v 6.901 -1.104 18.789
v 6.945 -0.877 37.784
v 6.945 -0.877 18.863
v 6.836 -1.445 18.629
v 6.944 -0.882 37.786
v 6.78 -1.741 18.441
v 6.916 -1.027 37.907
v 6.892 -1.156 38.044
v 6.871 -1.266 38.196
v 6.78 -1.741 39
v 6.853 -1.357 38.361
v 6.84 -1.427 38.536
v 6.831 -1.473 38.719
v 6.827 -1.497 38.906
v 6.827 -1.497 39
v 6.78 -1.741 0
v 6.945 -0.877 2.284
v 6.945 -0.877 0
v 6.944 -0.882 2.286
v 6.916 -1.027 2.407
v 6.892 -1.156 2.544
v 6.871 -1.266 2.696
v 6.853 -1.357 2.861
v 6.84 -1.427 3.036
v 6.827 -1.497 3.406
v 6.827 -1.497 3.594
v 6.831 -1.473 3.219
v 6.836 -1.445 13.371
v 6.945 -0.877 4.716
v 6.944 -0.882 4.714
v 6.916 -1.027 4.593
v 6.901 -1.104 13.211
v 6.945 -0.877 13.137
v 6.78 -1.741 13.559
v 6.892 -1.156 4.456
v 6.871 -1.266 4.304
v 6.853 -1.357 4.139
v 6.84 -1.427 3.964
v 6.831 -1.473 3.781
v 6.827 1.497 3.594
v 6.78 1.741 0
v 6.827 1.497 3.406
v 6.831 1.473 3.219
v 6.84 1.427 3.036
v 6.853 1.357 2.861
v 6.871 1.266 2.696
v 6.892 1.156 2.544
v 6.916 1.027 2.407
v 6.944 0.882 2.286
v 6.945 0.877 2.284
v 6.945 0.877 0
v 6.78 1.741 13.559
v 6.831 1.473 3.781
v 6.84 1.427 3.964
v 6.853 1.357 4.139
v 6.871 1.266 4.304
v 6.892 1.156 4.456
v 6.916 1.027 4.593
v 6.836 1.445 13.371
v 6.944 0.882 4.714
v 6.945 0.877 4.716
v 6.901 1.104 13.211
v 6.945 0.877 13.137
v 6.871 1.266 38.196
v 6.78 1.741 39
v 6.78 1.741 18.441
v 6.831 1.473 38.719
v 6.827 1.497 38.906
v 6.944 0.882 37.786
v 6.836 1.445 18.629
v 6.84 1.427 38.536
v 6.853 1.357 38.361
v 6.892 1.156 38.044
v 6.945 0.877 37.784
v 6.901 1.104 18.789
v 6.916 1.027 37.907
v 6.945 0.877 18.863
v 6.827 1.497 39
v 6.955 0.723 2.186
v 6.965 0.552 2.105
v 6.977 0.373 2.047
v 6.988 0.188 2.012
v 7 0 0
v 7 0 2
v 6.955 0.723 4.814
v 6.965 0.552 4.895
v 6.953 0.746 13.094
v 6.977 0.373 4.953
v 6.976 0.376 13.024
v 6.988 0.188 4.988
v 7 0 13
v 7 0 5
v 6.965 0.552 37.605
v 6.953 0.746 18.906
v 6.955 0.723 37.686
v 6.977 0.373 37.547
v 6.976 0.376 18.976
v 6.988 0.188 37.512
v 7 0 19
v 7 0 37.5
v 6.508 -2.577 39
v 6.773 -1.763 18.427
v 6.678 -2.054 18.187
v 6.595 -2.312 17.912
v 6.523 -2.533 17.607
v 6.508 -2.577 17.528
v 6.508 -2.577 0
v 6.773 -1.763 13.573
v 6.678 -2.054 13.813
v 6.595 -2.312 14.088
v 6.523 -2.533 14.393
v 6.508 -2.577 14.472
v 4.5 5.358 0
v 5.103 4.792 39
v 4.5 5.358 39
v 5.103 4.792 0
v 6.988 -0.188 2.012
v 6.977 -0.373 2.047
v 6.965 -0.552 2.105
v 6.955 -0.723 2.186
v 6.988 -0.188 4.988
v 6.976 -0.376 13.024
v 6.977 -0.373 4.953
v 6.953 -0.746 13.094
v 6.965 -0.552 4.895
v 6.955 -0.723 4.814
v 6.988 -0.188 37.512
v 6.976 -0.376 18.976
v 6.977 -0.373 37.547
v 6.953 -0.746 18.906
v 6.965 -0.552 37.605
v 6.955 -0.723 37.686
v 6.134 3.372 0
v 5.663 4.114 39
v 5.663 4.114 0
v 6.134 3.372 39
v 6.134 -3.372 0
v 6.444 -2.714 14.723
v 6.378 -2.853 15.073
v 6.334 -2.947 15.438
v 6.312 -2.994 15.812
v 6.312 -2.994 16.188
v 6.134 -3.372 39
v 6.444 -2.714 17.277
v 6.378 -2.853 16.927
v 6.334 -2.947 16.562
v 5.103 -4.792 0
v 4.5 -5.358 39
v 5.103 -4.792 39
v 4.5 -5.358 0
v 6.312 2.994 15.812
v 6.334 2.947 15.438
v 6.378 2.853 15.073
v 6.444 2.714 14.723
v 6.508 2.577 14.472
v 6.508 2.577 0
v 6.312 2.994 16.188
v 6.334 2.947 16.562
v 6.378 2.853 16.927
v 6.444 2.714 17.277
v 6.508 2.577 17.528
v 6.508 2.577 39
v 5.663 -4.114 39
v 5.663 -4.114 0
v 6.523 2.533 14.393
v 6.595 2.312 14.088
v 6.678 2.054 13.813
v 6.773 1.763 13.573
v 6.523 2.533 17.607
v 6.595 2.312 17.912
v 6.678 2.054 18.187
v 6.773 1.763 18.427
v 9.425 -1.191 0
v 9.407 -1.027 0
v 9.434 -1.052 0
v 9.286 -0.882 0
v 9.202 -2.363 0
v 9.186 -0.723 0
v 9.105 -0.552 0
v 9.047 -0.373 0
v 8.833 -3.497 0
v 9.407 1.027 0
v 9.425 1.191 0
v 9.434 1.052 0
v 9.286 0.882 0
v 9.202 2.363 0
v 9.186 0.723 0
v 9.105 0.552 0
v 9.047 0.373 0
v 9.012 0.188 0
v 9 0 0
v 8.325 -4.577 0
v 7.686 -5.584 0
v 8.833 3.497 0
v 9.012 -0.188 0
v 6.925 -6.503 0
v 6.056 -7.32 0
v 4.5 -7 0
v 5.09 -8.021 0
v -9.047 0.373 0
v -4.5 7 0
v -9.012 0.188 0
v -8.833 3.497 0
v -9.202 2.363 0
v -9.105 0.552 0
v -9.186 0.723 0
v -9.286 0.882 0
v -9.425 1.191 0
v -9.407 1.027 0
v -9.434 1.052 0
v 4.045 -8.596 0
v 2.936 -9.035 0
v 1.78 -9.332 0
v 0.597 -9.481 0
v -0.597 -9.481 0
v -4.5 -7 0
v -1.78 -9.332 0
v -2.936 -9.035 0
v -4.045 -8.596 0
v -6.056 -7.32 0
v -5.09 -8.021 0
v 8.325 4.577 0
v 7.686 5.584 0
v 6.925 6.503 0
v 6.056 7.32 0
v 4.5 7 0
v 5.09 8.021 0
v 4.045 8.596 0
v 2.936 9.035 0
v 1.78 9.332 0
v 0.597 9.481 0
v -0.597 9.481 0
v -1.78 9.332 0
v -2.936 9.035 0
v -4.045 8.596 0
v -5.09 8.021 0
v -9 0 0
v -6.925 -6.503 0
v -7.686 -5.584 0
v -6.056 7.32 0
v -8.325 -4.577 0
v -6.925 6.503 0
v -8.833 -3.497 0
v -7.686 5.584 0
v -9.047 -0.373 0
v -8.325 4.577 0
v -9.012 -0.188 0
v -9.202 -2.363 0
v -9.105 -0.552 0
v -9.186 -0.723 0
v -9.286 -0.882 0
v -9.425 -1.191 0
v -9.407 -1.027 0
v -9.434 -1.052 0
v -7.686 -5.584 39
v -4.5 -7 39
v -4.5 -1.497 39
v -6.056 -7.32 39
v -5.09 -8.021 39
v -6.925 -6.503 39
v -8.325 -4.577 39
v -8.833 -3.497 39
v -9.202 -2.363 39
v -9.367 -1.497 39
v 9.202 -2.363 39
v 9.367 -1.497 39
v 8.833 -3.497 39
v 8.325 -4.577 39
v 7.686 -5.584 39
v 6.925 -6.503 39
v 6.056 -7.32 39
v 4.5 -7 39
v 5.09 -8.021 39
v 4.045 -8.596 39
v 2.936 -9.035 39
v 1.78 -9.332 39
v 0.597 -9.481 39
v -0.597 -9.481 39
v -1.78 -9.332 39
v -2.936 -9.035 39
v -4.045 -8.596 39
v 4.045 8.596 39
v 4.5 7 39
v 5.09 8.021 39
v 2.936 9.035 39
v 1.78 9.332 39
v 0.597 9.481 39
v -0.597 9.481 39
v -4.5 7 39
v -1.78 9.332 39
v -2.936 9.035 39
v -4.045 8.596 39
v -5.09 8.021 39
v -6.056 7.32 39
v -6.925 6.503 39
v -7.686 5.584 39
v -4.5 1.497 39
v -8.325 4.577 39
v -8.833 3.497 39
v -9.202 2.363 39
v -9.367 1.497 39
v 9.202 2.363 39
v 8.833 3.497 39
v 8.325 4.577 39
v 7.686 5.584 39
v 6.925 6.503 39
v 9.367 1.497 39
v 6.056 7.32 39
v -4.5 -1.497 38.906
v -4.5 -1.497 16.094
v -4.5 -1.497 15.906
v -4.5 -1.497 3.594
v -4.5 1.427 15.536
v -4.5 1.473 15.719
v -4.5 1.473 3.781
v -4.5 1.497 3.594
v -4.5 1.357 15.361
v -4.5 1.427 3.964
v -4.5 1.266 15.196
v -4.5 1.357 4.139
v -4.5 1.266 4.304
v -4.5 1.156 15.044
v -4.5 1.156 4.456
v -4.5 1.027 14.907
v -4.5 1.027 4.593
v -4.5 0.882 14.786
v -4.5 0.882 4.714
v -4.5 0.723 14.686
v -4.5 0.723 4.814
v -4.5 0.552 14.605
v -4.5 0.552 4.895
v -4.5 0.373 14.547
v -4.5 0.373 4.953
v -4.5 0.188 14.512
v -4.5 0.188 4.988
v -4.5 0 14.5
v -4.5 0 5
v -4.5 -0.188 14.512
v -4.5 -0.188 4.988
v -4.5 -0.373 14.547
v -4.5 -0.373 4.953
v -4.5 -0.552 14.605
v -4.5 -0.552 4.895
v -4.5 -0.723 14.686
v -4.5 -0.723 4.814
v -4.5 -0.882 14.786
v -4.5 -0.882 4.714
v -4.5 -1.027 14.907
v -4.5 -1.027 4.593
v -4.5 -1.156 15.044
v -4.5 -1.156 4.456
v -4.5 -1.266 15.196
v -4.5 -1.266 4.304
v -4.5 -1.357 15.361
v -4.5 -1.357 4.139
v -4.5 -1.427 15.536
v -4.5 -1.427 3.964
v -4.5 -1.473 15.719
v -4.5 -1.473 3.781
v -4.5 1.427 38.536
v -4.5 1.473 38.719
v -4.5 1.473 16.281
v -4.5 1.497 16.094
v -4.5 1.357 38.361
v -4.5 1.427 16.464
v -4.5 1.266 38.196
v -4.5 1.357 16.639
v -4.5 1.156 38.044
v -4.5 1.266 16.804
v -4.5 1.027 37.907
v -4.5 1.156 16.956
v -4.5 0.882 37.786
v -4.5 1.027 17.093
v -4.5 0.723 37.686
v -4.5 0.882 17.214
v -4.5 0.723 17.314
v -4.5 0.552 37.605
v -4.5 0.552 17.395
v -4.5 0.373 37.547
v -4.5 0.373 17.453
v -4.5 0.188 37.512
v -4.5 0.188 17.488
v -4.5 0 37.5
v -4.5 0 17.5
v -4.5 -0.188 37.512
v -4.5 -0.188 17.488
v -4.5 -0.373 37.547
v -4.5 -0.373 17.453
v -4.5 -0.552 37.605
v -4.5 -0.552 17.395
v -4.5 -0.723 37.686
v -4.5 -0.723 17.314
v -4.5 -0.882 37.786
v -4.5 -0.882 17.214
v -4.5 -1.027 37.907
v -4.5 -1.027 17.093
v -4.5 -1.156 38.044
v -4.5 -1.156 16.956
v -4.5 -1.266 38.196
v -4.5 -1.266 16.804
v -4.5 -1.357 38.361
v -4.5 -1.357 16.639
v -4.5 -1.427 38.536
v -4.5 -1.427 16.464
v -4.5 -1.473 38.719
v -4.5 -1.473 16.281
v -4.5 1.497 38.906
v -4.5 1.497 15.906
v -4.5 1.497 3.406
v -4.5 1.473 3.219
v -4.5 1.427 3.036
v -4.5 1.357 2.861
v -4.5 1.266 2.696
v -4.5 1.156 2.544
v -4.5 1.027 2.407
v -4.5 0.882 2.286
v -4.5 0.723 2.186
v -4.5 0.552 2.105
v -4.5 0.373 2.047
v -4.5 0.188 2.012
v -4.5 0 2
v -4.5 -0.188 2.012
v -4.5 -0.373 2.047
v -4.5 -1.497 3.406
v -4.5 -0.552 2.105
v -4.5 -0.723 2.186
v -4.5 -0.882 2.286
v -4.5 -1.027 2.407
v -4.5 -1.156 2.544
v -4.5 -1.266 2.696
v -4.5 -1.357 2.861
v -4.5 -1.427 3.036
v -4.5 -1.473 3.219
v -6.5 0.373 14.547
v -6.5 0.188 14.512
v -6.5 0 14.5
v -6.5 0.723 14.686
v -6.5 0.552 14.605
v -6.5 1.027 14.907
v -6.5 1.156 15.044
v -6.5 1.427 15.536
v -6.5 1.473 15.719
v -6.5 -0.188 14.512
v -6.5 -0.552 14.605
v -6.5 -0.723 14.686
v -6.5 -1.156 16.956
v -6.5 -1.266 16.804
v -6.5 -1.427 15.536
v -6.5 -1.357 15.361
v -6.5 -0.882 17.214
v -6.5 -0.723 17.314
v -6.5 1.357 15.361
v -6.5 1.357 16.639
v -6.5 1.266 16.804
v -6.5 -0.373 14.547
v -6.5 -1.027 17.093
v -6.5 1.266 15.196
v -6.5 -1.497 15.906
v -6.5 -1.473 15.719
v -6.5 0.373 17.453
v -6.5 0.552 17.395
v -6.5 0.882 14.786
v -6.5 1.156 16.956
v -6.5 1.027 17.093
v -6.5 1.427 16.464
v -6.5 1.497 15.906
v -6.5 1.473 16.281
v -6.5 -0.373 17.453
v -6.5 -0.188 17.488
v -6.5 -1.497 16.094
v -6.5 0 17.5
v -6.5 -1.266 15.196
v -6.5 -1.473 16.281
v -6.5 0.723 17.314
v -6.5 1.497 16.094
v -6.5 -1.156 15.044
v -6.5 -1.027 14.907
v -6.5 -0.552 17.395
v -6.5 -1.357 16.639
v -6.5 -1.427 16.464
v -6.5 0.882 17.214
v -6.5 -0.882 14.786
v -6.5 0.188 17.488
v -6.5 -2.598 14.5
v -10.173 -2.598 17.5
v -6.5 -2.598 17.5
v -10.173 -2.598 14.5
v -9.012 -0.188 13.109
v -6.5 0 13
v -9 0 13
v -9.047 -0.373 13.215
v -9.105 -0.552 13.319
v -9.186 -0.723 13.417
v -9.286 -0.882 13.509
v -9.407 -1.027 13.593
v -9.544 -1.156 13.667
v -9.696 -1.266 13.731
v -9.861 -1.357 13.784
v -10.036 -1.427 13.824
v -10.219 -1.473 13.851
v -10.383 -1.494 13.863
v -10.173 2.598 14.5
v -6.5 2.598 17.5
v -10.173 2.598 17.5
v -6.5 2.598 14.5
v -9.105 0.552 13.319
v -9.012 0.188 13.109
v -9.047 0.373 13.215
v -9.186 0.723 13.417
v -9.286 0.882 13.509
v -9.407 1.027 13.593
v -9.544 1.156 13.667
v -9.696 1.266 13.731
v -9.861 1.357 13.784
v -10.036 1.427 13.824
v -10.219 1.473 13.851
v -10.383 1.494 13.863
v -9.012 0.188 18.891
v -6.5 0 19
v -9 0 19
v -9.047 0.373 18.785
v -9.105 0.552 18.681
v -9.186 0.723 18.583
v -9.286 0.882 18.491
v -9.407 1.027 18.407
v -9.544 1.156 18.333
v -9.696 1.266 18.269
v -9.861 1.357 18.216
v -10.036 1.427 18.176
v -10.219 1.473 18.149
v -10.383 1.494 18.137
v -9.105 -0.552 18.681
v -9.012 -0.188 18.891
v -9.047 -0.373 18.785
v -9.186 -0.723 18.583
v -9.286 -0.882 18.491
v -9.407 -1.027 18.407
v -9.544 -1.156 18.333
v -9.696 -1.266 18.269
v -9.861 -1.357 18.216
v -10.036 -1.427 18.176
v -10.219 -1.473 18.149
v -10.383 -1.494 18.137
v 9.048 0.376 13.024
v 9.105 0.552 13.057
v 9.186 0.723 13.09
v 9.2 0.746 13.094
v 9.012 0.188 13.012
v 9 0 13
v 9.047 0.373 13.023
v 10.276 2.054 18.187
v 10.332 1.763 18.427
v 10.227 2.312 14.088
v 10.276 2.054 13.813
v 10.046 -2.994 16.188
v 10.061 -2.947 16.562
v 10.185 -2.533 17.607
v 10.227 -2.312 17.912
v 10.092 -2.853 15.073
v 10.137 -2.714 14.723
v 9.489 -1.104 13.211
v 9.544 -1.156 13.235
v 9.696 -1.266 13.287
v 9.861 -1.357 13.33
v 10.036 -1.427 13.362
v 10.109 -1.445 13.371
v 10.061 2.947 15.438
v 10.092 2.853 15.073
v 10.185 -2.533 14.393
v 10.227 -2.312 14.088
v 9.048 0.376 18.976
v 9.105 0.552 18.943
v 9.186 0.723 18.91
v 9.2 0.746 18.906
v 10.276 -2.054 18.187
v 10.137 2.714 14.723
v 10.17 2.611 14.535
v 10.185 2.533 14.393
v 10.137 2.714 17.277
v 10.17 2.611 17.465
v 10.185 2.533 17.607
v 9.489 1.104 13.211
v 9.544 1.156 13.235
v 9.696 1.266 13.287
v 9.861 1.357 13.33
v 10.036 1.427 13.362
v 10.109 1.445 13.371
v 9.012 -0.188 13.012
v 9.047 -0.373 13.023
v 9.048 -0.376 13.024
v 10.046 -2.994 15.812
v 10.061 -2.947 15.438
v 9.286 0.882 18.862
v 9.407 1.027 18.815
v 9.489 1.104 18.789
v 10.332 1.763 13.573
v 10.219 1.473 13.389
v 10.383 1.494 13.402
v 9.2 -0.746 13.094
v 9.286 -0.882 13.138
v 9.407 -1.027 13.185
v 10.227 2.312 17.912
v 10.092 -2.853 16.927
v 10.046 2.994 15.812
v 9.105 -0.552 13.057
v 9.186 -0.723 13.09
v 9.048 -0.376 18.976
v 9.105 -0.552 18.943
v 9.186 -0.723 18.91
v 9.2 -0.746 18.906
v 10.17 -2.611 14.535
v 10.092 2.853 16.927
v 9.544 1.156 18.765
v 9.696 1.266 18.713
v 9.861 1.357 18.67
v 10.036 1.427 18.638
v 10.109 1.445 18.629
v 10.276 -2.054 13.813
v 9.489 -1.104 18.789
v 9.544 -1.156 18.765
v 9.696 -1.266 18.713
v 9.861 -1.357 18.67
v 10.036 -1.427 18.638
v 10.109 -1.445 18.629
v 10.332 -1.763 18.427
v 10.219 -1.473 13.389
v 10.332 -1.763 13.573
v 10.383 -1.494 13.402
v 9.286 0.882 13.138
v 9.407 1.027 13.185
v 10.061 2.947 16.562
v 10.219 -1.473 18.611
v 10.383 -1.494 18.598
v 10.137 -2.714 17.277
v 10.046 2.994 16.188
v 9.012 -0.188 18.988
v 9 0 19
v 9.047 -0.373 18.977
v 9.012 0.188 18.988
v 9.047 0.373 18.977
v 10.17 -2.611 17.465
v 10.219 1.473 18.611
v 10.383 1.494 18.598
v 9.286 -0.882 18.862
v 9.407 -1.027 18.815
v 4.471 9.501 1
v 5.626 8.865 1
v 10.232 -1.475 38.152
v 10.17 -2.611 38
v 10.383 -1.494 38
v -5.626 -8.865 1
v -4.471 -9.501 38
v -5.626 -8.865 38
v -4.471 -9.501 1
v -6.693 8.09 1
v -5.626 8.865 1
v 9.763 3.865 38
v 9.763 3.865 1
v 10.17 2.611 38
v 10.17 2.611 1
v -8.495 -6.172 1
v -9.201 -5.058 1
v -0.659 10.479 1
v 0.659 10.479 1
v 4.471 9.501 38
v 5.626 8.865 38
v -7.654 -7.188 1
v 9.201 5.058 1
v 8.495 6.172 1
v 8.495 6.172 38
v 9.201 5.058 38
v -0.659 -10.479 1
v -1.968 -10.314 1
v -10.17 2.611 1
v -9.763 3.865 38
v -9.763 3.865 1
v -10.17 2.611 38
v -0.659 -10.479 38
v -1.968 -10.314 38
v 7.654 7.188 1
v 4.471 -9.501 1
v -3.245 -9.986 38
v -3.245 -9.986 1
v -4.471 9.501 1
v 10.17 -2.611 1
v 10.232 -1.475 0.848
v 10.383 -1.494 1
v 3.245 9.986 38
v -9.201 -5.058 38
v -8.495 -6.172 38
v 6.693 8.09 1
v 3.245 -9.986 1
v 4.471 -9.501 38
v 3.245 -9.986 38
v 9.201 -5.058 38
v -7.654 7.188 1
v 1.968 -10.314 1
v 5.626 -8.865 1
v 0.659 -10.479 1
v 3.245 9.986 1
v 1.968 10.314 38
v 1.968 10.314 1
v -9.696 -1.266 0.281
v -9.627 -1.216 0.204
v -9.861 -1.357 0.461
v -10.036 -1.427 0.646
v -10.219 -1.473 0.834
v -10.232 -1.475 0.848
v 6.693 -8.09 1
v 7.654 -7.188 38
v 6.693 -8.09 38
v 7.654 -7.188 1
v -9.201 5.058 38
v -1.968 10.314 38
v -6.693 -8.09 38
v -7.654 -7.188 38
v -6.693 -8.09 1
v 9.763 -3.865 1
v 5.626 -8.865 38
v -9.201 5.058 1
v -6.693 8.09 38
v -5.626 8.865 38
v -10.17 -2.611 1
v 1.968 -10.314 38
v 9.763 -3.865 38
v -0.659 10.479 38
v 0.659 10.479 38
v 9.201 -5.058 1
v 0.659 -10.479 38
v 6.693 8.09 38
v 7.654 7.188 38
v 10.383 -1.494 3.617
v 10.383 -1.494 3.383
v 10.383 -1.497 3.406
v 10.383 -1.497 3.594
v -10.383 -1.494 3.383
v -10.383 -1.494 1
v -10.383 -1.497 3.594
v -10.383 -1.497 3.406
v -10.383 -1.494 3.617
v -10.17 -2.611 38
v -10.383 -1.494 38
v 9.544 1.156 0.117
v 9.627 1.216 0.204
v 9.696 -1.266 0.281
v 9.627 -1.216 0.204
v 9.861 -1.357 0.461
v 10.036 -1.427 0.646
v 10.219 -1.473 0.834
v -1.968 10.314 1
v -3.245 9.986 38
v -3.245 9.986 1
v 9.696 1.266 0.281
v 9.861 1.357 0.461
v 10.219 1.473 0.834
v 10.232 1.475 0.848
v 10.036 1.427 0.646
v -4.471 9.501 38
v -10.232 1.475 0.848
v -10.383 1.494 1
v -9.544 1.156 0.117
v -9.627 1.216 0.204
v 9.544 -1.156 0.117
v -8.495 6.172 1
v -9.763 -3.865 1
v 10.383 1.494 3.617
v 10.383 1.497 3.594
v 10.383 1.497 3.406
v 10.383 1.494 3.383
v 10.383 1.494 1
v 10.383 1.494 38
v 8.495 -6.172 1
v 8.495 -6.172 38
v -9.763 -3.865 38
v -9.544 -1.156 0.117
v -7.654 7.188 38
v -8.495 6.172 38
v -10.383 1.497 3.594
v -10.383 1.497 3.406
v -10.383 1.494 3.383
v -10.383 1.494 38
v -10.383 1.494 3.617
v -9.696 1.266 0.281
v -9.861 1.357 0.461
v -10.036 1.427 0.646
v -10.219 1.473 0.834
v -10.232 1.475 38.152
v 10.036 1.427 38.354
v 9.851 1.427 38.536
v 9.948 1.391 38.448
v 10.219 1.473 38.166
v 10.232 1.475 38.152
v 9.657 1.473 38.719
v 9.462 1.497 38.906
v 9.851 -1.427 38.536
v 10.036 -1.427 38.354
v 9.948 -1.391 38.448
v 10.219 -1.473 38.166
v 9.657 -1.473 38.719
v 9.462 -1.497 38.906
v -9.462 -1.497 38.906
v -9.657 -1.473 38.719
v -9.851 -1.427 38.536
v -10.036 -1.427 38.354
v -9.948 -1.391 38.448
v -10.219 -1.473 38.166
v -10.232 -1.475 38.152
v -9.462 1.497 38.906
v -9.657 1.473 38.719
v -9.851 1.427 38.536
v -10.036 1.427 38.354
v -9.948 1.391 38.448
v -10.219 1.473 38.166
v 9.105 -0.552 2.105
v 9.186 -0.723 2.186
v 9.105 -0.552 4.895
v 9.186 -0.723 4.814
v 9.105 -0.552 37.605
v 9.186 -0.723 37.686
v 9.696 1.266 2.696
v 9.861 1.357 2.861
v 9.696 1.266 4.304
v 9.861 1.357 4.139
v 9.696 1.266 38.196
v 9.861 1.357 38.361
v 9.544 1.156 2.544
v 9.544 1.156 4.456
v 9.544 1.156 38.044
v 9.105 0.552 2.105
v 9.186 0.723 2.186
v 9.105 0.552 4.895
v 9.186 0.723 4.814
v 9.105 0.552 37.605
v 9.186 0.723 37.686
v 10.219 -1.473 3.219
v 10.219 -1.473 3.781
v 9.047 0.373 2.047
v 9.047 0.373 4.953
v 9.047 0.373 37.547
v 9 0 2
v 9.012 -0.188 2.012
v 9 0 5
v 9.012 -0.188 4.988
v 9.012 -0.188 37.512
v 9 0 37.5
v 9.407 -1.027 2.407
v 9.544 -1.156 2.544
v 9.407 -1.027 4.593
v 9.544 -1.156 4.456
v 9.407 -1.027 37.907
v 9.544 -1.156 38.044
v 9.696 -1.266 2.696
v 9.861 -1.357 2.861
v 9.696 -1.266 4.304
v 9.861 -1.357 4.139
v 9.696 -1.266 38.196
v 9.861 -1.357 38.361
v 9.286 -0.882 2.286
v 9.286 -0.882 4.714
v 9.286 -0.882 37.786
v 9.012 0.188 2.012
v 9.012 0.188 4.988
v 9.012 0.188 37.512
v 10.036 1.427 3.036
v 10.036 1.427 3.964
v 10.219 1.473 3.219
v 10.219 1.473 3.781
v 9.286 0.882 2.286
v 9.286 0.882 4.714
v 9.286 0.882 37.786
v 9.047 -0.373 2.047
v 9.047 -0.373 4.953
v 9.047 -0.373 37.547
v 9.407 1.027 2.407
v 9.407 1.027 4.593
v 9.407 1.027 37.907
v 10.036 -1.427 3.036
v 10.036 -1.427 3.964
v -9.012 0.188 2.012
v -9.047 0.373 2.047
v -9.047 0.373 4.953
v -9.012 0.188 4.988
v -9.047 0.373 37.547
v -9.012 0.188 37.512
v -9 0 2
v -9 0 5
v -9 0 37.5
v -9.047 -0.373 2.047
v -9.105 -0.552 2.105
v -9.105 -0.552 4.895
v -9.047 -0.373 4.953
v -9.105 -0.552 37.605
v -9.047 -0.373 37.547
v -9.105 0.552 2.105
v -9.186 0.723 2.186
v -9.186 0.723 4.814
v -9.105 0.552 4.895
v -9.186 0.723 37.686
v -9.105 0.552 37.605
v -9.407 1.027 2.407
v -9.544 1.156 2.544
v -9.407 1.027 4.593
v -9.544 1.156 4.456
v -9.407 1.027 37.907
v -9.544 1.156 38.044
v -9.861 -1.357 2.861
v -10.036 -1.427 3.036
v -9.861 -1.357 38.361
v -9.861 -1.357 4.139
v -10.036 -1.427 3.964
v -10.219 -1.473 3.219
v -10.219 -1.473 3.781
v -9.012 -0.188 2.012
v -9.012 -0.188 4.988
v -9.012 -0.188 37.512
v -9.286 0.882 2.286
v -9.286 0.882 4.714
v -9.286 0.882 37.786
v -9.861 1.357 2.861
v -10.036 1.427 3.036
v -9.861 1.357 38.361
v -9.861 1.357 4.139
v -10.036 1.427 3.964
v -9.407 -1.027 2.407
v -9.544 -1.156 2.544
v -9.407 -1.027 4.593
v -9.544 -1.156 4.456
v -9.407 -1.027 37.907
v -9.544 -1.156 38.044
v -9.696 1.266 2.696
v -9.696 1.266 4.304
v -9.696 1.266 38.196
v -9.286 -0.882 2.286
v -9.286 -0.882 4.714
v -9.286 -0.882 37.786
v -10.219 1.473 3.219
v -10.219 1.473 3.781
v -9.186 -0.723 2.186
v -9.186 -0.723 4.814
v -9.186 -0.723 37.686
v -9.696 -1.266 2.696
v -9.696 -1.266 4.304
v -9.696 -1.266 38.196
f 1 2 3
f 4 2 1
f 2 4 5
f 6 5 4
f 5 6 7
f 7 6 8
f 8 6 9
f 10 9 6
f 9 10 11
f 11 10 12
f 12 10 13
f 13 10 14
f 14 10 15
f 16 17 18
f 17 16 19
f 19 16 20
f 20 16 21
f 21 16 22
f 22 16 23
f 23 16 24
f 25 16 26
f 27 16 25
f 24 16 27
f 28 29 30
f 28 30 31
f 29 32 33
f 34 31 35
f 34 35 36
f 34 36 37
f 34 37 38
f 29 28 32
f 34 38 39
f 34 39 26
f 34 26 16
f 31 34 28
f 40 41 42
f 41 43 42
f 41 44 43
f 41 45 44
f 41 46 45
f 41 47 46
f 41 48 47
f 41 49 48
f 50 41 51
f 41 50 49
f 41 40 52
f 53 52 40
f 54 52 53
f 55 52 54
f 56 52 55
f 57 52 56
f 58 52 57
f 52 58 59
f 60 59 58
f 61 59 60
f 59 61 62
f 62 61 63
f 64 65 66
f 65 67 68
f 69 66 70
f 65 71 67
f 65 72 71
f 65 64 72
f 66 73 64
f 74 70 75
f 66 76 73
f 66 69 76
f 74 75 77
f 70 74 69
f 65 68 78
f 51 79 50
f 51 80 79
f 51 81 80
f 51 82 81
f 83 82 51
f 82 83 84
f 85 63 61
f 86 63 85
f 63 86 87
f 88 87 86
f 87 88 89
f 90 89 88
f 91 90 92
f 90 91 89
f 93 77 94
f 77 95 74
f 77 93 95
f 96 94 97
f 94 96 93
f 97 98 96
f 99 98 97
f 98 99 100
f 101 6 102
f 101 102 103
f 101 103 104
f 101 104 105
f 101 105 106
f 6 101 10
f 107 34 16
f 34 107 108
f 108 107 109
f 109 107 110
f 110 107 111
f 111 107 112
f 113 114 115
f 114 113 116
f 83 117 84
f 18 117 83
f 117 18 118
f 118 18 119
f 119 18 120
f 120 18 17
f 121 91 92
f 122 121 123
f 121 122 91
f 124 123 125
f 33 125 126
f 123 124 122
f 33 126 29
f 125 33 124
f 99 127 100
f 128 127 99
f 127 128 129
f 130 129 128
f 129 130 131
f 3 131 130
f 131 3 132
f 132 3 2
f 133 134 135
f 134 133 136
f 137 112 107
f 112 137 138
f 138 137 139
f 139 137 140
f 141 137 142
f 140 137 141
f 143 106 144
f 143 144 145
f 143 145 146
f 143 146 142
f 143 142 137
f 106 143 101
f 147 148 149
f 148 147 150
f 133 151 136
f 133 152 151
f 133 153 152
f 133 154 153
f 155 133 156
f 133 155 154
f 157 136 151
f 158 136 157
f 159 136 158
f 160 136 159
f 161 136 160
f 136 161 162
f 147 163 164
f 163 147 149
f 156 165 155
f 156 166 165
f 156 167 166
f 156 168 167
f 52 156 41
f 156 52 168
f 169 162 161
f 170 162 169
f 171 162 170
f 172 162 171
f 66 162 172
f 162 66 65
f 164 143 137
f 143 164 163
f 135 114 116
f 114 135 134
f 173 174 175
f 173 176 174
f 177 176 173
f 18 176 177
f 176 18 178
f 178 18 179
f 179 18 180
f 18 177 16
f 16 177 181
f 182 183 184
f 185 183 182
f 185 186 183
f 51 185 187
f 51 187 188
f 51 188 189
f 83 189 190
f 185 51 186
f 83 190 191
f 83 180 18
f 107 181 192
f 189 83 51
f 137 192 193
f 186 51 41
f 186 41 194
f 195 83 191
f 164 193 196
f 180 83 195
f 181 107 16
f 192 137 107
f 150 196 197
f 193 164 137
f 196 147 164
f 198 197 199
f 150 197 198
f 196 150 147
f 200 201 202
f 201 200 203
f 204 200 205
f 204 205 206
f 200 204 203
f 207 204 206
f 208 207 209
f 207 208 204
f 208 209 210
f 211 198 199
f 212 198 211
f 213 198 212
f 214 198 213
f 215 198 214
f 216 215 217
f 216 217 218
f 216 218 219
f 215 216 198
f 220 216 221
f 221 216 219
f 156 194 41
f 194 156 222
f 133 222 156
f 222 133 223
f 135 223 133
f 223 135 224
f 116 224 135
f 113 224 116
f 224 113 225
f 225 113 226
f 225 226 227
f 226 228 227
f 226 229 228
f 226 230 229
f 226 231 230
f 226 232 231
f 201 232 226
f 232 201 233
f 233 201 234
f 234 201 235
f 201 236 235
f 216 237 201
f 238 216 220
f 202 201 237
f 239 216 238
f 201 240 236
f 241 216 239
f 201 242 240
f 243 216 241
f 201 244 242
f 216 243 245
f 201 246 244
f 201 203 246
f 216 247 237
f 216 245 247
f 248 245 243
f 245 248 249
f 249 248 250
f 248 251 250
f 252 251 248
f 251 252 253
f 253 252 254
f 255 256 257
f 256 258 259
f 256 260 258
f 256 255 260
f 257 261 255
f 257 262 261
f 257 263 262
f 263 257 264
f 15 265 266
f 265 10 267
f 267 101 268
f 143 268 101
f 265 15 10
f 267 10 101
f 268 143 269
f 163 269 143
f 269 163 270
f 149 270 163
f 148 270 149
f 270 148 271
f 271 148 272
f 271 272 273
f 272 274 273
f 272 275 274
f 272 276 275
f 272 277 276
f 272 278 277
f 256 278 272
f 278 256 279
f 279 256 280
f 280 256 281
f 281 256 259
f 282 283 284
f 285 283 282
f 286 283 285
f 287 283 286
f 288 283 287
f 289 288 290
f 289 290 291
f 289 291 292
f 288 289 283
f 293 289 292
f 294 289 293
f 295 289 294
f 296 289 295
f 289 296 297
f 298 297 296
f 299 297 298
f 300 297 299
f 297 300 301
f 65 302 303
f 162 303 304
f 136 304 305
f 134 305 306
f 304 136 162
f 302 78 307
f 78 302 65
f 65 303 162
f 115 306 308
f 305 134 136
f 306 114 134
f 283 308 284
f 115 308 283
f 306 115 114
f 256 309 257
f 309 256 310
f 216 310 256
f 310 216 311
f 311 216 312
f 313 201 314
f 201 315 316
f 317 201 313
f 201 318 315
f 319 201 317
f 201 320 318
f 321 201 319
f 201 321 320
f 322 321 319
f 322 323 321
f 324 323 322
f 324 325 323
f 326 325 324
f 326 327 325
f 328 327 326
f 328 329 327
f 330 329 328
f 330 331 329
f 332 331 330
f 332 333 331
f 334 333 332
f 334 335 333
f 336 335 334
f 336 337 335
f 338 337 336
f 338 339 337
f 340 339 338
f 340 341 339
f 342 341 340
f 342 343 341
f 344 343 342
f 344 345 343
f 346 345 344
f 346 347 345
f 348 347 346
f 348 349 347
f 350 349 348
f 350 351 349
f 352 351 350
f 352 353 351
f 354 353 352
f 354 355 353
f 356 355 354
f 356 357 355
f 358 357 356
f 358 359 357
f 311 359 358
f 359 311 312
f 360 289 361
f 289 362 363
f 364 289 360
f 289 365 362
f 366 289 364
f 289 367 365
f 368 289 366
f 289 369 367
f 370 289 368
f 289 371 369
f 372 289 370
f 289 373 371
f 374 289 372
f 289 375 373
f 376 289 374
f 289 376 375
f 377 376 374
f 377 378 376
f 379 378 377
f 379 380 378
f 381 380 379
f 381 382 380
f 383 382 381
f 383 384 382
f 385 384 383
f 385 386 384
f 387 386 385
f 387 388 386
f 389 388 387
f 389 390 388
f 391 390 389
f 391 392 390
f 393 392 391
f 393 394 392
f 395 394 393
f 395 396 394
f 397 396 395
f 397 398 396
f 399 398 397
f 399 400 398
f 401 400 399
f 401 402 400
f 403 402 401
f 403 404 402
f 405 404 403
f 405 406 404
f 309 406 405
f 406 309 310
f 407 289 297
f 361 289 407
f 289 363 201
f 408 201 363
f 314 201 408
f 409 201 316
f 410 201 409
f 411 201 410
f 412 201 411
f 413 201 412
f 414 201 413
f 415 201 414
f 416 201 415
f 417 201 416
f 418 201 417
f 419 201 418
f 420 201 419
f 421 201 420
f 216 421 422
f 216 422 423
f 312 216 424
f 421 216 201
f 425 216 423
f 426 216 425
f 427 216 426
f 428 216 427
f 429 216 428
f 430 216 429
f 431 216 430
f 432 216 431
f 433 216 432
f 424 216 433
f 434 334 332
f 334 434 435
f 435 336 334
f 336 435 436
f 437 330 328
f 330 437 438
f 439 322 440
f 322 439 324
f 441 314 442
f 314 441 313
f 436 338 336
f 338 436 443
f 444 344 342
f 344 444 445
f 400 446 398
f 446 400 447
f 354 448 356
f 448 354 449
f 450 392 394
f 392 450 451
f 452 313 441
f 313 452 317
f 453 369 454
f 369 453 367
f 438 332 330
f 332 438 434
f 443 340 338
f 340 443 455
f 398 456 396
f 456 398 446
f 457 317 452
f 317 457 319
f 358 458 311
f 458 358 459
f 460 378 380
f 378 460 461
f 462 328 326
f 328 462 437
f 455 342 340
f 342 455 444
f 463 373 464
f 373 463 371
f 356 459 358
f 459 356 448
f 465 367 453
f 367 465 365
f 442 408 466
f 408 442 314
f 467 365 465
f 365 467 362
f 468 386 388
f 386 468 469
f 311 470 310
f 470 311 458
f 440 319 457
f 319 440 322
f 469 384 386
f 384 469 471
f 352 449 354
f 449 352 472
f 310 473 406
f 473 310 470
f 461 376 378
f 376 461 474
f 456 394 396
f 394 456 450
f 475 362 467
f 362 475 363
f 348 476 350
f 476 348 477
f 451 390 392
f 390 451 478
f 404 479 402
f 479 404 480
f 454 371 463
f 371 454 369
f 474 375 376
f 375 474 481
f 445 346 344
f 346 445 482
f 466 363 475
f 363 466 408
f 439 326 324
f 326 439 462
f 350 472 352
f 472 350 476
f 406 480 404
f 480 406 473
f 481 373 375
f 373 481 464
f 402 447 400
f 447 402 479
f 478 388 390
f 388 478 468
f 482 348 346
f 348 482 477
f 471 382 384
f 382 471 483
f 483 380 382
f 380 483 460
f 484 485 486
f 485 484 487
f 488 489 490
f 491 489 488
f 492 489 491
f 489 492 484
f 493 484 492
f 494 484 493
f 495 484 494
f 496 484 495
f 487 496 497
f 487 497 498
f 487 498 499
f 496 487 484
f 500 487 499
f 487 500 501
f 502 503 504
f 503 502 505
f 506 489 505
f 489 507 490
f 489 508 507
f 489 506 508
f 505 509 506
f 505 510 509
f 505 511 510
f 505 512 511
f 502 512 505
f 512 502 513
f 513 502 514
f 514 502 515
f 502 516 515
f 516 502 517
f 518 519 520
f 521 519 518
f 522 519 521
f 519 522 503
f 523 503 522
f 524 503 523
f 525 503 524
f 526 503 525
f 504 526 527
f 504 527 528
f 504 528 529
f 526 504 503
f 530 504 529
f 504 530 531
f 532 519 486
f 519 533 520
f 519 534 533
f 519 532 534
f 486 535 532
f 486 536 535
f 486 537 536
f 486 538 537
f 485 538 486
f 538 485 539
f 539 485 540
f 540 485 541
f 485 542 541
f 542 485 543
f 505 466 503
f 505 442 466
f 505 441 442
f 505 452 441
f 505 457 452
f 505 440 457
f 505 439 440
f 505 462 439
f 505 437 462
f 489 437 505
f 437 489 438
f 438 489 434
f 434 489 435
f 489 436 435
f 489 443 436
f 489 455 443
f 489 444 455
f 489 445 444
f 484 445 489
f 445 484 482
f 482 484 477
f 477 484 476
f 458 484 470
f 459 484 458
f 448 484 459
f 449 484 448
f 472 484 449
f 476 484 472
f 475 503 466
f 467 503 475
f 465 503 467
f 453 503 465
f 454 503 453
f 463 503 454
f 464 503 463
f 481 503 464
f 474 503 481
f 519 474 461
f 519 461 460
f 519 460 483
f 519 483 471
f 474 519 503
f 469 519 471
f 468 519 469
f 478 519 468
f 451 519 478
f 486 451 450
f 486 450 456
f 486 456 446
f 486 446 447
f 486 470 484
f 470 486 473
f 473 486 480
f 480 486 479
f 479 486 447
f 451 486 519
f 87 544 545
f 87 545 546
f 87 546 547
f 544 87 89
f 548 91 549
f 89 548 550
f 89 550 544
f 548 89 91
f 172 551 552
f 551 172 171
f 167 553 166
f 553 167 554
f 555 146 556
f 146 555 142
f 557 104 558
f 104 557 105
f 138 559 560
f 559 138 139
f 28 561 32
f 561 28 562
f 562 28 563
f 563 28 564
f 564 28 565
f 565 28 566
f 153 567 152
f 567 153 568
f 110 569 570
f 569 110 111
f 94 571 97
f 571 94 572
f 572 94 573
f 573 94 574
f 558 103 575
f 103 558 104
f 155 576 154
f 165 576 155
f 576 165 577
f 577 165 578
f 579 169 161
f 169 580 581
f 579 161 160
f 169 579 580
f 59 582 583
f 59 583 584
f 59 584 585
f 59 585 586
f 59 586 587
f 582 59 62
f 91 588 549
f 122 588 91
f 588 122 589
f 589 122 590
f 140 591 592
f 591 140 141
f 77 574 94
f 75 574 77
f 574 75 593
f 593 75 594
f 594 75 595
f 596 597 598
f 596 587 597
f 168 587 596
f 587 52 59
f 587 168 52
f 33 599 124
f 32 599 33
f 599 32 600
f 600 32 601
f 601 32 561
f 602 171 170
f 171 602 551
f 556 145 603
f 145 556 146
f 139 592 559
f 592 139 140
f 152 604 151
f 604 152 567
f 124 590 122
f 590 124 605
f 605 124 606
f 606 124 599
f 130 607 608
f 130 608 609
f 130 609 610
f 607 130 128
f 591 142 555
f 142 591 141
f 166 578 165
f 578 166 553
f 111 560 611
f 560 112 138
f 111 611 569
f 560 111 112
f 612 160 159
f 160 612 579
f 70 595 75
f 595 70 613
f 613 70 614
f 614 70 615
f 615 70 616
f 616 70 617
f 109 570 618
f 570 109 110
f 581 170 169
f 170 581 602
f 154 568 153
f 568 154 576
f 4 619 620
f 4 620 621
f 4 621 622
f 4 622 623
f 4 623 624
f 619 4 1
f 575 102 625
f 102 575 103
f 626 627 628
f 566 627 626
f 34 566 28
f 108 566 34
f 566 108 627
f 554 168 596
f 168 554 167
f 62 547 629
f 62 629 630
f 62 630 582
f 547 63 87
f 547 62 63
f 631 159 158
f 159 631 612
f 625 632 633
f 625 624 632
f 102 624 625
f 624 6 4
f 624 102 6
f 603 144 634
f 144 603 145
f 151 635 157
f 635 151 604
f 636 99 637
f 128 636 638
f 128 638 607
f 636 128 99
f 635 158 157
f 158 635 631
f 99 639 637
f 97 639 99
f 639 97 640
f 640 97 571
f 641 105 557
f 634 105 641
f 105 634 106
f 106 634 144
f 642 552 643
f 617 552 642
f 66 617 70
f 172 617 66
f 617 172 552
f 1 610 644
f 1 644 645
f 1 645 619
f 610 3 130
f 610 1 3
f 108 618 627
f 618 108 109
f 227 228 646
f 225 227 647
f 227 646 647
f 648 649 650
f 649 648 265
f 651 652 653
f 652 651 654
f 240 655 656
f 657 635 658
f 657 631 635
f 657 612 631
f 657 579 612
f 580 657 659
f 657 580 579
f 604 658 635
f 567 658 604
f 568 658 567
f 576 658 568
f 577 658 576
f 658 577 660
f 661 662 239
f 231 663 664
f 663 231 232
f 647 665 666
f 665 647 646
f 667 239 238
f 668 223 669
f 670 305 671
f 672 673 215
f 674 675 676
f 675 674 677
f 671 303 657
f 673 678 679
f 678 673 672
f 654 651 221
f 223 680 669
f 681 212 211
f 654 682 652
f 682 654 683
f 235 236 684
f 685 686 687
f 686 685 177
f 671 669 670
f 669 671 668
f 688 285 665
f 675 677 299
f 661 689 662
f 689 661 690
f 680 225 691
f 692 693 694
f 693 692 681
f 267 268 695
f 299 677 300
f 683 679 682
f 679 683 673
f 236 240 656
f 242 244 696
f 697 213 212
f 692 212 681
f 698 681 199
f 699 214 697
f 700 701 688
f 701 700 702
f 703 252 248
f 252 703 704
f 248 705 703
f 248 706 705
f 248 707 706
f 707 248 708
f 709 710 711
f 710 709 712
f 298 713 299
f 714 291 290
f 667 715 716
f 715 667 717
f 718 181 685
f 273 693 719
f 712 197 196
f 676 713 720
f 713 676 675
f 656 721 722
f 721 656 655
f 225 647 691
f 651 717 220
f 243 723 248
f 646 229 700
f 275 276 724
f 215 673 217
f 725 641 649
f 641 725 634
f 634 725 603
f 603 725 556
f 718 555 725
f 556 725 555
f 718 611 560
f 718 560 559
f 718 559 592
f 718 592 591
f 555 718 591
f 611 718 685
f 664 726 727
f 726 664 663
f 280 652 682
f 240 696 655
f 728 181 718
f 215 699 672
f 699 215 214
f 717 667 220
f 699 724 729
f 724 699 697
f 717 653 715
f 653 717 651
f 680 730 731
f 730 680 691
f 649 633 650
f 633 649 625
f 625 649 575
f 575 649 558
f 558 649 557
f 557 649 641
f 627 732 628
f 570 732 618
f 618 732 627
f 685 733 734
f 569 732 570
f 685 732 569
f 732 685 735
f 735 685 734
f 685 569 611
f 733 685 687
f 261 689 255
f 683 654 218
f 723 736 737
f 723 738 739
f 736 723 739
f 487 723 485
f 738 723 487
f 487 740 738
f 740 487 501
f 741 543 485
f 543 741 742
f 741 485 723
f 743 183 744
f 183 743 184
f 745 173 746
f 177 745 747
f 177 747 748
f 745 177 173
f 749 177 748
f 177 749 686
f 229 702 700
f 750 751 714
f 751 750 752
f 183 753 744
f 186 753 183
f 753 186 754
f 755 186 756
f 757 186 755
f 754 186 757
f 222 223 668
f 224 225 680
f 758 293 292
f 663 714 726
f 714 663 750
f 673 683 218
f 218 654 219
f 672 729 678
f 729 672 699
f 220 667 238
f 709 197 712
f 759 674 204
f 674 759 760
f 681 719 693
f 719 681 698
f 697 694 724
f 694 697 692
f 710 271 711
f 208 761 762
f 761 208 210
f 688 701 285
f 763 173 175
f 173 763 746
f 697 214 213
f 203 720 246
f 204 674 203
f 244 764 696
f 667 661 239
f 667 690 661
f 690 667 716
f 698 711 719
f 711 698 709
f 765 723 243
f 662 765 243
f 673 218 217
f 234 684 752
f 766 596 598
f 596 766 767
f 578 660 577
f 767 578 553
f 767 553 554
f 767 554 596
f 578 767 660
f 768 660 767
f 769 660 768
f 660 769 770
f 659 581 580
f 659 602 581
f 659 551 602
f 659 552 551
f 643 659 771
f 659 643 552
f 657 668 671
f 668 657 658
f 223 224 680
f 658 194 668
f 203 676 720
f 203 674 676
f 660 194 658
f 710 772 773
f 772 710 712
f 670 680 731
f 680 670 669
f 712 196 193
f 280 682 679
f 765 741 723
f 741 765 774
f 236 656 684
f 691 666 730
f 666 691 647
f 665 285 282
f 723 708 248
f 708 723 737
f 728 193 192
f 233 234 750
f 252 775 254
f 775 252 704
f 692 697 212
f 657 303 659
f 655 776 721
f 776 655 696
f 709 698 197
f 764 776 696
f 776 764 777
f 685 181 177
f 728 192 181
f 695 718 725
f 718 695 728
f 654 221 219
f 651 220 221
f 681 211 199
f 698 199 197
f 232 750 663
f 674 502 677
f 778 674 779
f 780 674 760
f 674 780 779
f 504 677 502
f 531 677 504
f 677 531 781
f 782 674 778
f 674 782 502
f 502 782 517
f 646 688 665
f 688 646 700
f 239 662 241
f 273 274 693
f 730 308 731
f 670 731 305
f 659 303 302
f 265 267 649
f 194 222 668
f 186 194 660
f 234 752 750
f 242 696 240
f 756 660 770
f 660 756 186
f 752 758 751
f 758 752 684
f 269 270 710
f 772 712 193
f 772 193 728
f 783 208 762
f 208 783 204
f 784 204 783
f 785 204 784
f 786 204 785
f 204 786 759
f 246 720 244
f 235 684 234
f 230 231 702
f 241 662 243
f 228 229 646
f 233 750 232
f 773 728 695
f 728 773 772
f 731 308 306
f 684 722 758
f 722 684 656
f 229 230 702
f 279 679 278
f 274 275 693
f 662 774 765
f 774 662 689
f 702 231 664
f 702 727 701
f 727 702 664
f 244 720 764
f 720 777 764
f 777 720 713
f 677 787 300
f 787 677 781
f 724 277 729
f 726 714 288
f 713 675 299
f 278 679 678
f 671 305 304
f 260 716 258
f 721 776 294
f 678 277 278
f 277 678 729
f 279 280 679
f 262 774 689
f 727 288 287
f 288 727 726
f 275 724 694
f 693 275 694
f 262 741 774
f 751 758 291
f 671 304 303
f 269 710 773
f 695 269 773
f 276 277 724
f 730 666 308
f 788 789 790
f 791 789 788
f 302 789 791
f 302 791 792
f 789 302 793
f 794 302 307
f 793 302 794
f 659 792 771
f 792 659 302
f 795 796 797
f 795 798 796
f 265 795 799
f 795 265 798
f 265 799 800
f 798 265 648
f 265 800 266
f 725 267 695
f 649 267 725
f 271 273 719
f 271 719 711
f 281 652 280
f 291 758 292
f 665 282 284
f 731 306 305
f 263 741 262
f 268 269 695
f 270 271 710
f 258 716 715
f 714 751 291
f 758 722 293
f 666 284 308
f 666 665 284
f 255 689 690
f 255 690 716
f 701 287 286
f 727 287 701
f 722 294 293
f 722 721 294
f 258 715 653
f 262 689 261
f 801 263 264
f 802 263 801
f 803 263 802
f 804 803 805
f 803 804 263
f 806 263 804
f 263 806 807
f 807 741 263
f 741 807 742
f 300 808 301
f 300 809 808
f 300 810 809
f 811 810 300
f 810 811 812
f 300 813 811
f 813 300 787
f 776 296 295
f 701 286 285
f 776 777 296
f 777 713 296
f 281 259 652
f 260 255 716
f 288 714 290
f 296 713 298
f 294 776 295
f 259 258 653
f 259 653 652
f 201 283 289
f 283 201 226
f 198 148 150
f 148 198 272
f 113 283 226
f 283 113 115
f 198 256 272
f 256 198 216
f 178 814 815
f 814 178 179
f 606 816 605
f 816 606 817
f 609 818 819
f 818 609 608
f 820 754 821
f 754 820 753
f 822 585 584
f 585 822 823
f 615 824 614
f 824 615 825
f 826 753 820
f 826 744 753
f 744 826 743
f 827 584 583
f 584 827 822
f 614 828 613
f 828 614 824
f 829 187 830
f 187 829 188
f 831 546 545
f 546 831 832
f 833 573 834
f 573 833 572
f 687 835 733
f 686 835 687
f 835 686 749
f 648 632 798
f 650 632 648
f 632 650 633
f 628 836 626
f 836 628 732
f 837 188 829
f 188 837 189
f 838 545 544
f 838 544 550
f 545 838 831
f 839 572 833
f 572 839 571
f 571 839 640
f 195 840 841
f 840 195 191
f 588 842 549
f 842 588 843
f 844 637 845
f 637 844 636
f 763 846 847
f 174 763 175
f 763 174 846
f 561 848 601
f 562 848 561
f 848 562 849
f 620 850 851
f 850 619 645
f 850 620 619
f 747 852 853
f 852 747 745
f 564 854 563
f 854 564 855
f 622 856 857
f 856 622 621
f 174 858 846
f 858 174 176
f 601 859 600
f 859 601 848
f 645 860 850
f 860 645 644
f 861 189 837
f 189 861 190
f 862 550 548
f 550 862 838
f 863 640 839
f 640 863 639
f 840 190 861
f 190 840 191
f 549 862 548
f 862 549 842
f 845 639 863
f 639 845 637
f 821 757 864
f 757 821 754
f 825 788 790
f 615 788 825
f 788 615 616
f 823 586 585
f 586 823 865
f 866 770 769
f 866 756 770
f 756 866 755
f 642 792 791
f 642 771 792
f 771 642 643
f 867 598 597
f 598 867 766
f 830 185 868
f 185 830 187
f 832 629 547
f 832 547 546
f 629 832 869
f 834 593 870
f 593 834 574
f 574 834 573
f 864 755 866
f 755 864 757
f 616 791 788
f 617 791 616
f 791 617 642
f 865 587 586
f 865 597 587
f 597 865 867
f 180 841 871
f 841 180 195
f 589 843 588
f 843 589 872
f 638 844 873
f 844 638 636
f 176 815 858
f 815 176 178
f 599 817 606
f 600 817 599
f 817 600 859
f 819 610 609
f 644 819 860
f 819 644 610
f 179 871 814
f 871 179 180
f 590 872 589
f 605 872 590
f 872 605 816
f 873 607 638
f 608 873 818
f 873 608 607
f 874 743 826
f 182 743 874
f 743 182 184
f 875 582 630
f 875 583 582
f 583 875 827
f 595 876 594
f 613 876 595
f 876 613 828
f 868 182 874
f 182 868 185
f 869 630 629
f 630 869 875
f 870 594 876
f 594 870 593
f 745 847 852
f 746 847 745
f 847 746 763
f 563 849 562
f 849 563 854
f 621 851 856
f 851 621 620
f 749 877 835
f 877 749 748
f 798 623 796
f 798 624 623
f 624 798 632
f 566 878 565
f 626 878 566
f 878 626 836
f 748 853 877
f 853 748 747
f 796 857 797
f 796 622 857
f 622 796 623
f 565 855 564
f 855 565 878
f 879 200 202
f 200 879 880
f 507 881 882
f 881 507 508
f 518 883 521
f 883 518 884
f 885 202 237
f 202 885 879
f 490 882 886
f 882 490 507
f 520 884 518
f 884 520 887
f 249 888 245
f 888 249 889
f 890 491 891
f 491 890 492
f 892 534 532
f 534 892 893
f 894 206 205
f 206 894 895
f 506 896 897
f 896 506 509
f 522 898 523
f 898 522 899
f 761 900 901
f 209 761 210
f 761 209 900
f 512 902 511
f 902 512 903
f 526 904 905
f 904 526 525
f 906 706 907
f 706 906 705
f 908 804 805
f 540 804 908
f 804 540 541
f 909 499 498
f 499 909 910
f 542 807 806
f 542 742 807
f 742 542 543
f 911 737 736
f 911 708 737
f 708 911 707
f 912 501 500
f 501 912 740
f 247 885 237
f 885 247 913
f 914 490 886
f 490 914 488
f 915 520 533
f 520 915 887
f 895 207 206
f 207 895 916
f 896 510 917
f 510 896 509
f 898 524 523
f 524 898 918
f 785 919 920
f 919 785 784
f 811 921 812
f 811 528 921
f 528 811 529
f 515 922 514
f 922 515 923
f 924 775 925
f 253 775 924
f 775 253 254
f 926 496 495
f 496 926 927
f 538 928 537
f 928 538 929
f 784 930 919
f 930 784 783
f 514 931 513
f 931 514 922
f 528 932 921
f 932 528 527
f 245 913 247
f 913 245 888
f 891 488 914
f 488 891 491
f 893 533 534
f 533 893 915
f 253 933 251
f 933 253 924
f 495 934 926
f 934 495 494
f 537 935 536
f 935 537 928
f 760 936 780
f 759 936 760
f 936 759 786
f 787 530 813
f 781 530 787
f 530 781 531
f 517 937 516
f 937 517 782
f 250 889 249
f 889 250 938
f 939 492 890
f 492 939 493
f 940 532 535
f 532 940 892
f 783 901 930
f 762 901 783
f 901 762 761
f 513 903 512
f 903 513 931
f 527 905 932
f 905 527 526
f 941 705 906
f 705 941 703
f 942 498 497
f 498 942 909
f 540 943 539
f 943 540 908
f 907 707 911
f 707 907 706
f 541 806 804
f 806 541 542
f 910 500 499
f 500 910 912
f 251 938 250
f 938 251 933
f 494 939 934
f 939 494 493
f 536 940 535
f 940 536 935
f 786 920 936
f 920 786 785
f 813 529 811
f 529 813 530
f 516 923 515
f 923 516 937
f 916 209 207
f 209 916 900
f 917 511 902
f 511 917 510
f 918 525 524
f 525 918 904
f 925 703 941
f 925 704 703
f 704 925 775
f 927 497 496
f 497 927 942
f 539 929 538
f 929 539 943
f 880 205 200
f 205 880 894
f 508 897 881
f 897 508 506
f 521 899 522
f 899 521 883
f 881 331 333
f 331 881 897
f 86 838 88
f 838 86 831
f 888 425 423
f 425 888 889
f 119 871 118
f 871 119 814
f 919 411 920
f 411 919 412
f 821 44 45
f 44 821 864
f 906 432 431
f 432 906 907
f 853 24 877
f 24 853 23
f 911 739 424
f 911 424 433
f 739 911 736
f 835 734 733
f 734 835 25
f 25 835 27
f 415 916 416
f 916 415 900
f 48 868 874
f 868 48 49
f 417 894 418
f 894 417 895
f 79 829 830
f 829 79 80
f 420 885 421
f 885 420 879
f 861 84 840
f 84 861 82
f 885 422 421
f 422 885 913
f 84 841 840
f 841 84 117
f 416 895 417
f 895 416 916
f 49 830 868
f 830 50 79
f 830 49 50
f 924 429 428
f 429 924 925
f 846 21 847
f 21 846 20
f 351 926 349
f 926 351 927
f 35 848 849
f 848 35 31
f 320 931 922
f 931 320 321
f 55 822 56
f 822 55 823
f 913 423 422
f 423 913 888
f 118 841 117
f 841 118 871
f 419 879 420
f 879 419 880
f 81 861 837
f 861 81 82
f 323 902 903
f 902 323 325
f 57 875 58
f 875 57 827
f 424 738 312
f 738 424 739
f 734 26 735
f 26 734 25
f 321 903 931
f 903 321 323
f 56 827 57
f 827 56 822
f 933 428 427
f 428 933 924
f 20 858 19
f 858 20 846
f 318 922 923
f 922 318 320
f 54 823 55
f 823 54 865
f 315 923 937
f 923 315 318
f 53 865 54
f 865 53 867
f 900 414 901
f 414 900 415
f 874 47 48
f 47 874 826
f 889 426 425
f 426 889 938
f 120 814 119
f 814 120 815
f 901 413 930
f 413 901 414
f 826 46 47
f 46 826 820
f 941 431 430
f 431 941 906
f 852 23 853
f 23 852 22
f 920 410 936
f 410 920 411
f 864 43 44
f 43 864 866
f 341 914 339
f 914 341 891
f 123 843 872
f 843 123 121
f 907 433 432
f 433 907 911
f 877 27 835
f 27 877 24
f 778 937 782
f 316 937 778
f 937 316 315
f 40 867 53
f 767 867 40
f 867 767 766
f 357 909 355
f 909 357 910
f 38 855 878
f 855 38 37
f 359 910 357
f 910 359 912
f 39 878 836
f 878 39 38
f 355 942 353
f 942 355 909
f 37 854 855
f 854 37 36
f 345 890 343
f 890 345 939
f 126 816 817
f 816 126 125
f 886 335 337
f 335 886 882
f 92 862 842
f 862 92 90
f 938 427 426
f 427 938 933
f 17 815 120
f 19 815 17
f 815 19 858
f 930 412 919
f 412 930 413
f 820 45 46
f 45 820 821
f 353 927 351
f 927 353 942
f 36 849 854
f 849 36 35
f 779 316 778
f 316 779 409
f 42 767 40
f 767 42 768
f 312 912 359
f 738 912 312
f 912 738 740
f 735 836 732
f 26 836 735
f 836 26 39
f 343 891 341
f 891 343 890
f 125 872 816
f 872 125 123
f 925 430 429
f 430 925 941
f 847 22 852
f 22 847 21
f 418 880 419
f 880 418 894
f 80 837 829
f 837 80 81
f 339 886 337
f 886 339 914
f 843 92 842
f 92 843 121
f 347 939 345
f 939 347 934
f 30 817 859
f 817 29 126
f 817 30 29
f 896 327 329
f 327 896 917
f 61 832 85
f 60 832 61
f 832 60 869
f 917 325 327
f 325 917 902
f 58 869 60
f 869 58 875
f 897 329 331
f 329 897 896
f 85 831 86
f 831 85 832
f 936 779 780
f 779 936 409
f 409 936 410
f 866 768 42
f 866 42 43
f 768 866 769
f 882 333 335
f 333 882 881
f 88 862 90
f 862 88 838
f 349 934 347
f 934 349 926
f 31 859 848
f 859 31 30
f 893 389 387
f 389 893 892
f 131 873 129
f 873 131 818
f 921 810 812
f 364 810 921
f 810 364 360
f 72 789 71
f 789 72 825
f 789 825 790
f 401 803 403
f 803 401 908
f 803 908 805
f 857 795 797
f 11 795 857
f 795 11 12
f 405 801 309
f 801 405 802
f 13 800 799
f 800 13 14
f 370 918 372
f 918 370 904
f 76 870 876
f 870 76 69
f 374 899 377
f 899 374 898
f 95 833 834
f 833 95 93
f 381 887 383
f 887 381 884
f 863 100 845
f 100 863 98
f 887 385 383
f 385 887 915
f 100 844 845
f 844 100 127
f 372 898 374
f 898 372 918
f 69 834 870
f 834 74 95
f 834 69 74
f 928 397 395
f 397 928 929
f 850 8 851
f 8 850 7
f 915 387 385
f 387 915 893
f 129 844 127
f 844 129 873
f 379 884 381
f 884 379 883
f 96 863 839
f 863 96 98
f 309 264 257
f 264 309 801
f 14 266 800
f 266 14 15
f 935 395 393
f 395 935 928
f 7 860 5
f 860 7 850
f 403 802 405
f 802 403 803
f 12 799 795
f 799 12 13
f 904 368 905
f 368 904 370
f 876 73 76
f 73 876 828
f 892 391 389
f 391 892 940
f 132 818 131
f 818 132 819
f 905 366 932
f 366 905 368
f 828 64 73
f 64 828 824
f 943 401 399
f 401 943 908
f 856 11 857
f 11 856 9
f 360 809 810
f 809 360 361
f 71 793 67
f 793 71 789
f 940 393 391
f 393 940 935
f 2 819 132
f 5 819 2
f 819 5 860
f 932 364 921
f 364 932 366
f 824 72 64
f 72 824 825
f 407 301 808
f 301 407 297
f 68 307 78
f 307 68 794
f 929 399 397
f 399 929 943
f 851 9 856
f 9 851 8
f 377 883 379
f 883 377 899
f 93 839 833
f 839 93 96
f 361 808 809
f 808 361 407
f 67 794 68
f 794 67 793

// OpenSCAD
wireOD = 3;
sensorMountX = 14;
sensorMountY = 30;
sensorMountZ = 9;
sensorMountScrewSize = 3;
wallThickness = 2;
chamferSize=1;
$fn=50;

difference() {
    // Surround to protect the sensor from feet
    
    hull() {
        cylinder(h = 1, r=sensorMountX/2+wallThickness+wireOD/2-chamferSize);
        translate([0,0,chamferSize])
        cylinder(h = sensorMountY+wallThickness*3+wireOD-chamferSize*2, r=sensorMountX/2+wallThickness+wireOD/2);
        translate([0,0,sensorMountY+wallThickness*3+wireOD-chamferSize])
        cylinder(h = 1, r=sensorMountX/2+wallThickness+wireOD/2-chamferSize);
    }
        
    // internal platform for sensor
    translate([0, 0, 0])
    difference() {
        cylinder(h = sensorMountY+wallThickness*3+wireOD, r=sensorMountX/2);
        rotate([0,0,90])
        translate([-(sensorMountX/2+wallThickness+wireOD/2), sensorMountZ/2, 0])
        cube([sensorMountX+wallThickness*3+wireOD, sensorMountX/2+wallThickness+wireOD/2, sensorMountY+wallThickness*3+wireOD]);
    }
    
    // cutout for sensor
    rotate([90,0,90])
    translate([-sensorMountX/2,0,-sensorMountZ/2])
    cube([sensorMountX, sensorMountY+wallThickness*3+wireOD, sensorMountZ]);
    
    // vertical wire slots
    translate([sensorMountX/2+wallThickness+wireOD/2,0,0])
    cylinder(h=sensorMountY+wallThickness*3+wireOD, r=wireOD/2);
    translate([-(sensorMountX/2+wallThickness+wireOD/2),0,0])
    cylinder(h=sensorMountY+wallThickness*3+wireOD, r=wireOD/2);
    
    // horizontal wire slots
    translate([-(sensorMountX/2+wallThickness+wireOD/2),0,wireOD/2+wallThickness])
    rotate([0,90,0])
    cylinder(h=sensorMountX+wallThickness*2+wireOD, r=wireOD/2);
    
    translate([-(sensorMountX/2+wallThickness+wireOD/2),0,sensorMountY+wallThickness*3+wireOD])
    rotate([0,90,0])
    cylinder(h=sensorMountX+wallThickness*2+wireOD, r=wireOD/2);
    
    //screw hole to hold sensor
    translate([-(sensorMountX/2+wallThickness+wireOD/2),0,wallThickness*3+wireOD+sensorMountX/2])
    rotate([0,90,0]) {
        cylinder(h=sensorMountX+wallThickness*2+wireOD, r=sensorMountScrewSize/2);
        
        //nut
        #cylinder(h=sensorMountScrewSize+1, r=sensorMountScrewSize, $fn=6);
        
        // screw access
        translate([0, 0, sensorMountX+wallThickness])
        cylinder(h=wireOD+wallThickness, r=sensorMountScrewSize);
    }
    
    
}
